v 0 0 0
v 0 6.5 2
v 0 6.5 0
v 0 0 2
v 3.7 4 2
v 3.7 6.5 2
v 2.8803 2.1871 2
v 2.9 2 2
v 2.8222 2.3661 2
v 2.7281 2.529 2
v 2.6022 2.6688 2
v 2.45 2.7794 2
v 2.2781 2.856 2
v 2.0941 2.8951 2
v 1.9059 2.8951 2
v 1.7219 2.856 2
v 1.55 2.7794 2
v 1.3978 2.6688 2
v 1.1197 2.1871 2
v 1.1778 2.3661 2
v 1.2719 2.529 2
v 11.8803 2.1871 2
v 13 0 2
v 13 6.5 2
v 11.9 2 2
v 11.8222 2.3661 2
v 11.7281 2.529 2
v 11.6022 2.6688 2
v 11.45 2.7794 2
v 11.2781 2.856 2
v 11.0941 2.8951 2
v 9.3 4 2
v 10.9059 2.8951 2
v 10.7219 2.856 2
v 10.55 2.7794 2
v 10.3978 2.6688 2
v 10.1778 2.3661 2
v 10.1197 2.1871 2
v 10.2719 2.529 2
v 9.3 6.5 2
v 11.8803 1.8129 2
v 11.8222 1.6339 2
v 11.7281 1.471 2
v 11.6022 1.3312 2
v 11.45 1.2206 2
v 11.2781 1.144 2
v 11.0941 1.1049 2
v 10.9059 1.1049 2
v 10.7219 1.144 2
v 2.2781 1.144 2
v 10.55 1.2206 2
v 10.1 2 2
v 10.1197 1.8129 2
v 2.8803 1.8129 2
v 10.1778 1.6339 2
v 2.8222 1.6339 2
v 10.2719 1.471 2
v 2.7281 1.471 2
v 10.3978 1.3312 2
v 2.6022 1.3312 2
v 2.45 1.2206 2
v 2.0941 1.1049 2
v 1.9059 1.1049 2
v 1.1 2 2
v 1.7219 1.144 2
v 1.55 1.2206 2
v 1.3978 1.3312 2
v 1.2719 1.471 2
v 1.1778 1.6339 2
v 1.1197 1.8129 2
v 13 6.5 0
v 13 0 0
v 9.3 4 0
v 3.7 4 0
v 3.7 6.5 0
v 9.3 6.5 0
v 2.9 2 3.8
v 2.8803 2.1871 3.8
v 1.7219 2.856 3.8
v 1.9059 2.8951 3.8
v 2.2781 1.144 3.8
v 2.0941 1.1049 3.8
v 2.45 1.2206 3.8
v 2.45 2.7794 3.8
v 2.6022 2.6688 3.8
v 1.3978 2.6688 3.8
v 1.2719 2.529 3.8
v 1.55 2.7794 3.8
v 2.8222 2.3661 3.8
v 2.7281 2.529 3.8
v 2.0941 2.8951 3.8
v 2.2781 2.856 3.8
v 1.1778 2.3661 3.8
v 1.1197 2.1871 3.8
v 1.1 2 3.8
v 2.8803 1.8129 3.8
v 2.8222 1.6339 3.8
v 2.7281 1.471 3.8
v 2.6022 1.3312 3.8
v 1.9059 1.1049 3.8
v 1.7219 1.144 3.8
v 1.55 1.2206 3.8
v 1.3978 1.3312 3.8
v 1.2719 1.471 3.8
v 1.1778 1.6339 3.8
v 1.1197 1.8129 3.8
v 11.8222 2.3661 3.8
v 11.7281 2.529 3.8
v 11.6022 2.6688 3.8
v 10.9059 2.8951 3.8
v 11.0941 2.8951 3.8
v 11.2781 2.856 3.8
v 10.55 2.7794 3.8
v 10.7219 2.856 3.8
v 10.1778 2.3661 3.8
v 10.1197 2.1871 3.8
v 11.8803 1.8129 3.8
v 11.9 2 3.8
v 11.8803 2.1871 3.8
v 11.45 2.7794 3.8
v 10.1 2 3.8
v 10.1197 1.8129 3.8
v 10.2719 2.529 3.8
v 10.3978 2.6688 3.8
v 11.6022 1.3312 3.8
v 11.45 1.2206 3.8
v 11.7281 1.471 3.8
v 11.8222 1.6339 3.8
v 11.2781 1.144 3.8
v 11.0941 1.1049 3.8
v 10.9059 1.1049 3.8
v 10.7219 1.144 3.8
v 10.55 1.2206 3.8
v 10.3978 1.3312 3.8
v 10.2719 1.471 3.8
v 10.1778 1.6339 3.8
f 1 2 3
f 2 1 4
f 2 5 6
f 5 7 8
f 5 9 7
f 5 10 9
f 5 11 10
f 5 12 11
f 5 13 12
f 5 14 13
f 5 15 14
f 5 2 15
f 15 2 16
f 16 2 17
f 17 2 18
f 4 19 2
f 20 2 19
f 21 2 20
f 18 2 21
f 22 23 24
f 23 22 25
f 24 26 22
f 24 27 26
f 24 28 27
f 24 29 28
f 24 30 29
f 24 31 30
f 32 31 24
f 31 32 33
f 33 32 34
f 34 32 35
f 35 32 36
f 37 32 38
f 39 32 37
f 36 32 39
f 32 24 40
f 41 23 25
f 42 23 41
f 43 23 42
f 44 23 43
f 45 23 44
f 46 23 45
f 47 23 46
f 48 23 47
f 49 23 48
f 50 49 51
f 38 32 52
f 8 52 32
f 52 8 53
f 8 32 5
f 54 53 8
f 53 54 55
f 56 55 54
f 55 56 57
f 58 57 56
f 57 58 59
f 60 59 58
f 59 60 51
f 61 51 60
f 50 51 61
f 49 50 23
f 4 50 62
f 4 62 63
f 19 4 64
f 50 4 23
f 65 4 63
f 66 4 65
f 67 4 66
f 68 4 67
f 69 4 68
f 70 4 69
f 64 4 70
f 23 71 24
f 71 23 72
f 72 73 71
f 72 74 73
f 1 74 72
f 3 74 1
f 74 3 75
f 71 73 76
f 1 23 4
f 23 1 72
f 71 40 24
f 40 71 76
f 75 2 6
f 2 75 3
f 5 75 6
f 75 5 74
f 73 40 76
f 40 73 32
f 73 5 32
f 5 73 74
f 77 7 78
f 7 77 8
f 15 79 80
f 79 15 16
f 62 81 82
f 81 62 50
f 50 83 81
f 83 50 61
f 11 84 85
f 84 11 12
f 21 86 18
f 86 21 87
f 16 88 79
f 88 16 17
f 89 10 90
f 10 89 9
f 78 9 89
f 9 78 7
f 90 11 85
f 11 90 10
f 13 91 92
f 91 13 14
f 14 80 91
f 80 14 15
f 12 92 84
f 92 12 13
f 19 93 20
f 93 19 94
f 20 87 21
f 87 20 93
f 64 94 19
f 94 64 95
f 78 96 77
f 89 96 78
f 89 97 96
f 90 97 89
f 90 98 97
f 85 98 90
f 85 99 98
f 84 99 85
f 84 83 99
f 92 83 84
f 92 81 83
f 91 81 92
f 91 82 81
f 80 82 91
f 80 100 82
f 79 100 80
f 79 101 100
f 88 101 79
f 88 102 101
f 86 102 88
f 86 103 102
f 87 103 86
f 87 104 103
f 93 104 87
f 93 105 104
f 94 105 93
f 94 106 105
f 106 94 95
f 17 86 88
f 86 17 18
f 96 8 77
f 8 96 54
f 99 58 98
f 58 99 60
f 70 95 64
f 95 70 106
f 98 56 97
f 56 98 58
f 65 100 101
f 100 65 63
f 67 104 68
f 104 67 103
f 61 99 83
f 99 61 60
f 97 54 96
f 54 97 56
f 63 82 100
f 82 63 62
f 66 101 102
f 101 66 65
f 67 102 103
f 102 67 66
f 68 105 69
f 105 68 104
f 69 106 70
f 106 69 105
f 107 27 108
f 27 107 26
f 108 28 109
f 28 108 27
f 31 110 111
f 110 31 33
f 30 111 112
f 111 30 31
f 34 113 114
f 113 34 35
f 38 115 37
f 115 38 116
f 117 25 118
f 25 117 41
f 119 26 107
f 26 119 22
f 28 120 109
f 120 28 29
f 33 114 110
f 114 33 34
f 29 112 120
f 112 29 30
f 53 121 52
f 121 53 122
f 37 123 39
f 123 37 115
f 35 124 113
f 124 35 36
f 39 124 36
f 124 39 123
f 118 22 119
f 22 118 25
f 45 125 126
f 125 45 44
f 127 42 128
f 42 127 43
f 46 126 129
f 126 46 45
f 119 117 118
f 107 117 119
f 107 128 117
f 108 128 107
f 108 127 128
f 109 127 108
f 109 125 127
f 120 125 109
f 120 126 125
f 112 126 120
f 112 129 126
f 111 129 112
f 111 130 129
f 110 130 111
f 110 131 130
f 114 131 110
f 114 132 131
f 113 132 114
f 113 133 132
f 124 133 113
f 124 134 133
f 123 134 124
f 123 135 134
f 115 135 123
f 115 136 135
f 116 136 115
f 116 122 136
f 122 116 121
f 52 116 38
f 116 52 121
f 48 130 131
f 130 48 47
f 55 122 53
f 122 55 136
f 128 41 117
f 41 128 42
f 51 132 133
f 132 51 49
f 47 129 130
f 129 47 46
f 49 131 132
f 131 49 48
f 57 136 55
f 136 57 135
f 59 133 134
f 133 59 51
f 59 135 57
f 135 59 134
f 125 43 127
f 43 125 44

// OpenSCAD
h = 2;
cyl_height=1.8;
e=0.001;
$fn=30;
difference() {
    cube([13,6.5,h]);
    translate([3.7,4.0,-e]) cube([5.6,5,h+e*2]);
}
translate([2,2,0]) cylinder(d=1.8, h=h+cyl_height);
translate([11,2,0]) cylinder(d=1.8, h=h+cyl_height);
